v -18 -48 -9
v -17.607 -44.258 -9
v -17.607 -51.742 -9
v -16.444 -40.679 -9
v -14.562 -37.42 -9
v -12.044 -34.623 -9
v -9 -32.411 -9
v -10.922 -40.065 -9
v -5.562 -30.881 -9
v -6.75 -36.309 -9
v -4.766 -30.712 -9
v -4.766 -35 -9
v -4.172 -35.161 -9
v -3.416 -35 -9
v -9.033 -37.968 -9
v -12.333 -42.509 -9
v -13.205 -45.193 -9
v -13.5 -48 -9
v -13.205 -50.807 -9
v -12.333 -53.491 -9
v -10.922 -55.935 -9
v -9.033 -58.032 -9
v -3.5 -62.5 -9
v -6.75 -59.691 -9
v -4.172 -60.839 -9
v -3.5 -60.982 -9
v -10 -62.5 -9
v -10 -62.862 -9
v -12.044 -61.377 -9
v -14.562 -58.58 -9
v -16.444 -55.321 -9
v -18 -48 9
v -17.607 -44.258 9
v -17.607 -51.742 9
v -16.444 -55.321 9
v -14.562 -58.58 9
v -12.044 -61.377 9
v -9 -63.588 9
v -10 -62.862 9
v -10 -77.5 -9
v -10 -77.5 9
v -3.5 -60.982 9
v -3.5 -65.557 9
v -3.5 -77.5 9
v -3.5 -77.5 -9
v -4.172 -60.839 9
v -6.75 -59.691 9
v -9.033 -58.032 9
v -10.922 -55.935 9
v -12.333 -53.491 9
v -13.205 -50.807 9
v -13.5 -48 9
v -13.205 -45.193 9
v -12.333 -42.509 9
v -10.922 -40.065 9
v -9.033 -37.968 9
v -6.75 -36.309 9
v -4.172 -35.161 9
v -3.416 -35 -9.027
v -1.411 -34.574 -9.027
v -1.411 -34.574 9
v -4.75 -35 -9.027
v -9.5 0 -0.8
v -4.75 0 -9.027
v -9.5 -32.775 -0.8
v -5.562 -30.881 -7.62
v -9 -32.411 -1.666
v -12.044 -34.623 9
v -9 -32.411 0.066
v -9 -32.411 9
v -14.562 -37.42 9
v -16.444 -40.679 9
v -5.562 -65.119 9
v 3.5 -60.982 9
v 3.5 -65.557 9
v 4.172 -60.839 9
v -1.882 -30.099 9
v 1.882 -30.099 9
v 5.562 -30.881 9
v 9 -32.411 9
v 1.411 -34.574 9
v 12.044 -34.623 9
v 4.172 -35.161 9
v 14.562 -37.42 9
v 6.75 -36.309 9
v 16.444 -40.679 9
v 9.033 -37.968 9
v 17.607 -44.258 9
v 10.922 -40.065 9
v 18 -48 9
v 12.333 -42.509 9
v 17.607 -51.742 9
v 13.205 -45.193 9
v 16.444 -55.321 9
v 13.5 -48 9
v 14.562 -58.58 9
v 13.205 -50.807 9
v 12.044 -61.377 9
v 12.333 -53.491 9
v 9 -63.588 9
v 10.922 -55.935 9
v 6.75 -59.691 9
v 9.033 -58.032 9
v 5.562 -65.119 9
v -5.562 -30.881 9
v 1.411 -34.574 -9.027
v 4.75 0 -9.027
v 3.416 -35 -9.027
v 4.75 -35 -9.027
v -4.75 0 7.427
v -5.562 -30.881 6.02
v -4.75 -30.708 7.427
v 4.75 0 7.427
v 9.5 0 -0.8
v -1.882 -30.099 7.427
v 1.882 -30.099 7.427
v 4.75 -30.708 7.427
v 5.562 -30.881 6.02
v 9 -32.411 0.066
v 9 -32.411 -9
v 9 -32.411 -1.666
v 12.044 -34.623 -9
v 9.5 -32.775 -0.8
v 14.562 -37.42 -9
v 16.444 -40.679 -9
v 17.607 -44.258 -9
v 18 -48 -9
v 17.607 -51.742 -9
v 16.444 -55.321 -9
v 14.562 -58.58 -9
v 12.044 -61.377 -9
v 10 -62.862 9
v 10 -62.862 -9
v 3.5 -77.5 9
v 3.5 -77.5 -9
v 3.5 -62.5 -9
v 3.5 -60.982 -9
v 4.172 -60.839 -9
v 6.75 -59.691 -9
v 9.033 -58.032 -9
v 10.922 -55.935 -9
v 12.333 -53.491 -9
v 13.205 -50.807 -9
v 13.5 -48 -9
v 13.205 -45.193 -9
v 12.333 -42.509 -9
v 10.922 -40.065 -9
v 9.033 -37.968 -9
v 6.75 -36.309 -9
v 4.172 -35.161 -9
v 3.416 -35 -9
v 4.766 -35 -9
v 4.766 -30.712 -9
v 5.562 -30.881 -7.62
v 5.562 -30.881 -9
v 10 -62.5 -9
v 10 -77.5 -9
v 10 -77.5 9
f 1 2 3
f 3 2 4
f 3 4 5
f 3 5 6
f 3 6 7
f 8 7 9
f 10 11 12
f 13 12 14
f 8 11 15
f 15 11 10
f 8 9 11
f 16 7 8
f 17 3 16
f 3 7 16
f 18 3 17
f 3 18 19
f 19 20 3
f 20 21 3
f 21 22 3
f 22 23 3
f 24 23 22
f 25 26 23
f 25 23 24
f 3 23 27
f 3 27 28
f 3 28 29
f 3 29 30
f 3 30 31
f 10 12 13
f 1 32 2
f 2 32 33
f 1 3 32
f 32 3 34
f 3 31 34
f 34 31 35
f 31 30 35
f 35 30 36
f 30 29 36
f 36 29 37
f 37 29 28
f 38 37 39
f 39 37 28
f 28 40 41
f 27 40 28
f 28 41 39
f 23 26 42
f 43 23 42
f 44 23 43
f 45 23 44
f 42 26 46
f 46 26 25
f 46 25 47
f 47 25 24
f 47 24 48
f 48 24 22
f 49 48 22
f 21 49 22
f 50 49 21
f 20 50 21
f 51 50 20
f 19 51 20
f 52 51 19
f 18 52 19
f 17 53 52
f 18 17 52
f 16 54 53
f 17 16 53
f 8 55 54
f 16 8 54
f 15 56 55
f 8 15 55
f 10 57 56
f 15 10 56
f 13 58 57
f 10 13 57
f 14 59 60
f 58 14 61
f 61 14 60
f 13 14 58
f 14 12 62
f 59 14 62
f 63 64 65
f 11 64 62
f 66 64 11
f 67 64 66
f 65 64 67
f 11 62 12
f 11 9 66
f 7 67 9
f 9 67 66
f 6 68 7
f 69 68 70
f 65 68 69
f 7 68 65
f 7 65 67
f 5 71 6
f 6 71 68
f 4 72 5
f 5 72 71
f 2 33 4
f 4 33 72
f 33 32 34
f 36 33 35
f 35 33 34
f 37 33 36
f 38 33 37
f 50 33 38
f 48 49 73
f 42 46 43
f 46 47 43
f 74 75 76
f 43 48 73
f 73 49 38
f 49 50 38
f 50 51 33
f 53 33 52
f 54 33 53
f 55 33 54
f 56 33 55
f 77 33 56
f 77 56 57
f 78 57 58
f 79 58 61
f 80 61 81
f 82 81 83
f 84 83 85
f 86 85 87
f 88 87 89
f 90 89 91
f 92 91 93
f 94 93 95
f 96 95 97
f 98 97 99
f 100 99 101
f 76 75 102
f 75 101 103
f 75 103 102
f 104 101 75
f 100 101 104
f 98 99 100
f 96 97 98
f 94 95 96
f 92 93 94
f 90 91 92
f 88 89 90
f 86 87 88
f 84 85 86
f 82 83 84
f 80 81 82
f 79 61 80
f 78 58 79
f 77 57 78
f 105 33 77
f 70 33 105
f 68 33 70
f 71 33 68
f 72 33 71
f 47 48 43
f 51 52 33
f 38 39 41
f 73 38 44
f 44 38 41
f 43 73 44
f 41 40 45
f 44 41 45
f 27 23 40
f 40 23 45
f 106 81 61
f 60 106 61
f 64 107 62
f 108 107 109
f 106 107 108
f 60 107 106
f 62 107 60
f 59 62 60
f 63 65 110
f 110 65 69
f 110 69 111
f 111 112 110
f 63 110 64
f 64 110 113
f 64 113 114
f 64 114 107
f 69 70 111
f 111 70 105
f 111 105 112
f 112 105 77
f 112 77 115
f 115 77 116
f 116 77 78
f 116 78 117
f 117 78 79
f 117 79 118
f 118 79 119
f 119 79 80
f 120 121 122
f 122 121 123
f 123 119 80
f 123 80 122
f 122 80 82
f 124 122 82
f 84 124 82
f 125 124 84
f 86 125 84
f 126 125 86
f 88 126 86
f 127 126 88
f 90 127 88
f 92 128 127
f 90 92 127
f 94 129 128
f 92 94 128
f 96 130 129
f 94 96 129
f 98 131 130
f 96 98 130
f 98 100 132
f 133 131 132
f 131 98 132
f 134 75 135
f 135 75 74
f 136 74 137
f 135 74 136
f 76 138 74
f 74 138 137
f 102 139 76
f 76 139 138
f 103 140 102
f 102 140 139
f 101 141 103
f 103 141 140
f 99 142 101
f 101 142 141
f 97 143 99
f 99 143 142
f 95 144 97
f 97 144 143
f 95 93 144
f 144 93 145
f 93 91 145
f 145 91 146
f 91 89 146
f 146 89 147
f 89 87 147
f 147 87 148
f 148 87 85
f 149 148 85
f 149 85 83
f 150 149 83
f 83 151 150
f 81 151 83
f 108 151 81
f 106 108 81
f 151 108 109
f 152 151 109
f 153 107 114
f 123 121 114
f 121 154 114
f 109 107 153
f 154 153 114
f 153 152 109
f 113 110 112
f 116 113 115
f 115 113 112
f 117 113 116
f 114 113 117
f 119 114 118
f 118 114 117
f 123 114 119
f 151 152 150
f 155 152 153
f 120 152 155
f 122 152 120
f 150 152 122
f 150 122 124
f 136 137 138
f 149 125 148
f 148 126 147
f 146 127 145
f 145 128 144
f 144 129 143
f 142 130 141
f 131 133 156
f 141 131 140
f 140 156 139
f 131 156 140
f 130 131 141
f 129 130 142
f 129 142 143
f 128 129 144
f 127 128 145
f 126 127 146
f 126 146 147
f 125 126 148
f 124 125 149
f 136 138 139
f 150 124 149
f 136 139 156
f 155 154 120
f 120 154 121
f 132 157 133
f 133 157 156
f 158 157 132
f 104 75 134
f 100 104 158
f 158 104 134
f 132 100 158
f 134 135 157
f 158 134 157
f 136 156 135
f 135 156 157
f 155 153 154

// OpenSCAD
rotate([90, 0, 0]){
difference() 
{ 
// ode�et distan�n� mezery


union() 
{
// p�i�ten� patic pro sta�en�

difference() 
{ 
// diffference pro  otvor pro osazen� na ty�



union() 
{
// union pro v�lec napojen� na cylinder pro zasazen� do rukojeti

union() 
// union pro p�ipojen� cylinderu na v�lec
{


//cylinder(h = 14, r1 = 17, r2 = 10, center = true); 
//cylinder-nepouzite skoseni napojeni tyce pro usazeni v rukojeti

//zakladn�
#translate([0,9,48]) rotate ([90,0,0])cylinder(h = 18, r=18);
// 40 je nastavena vnitrni prumer na 35 a vnejsi na 40
        
} 
translate([0,-0.8,0]) rotate ([0,0,0]) cylinder(h=35, r=9.5,$fn=6); 
// umisteni ctverce pro dosazeni do rukojeti
//tloustka operky je 4mm + 14mm pro zesileni
//19 je posun nahoru a dolu/////35 vyska propojky
}
translate([0,10,48]) rotate ([90,0,0])cylinder(h = 20, r=13.5);
// odecitaci valec pro otvor na osazen� ty�e

//27 je vnitrni prumer

}
translate([0,0,70]) rotate ([90,0,0]) cube(size = [20,15,18], center = true);
//sloupky pro utazeni
}
translate([0,10,80]) rotate ([0,0,0])cube(size = [7,50,40], center = true);
//odecet distancni mezery
}        


//# pro zviditeleneni
//priblizeni shift+prav tlacitko mysi+ pousouvani dopredu/dozadu
}
